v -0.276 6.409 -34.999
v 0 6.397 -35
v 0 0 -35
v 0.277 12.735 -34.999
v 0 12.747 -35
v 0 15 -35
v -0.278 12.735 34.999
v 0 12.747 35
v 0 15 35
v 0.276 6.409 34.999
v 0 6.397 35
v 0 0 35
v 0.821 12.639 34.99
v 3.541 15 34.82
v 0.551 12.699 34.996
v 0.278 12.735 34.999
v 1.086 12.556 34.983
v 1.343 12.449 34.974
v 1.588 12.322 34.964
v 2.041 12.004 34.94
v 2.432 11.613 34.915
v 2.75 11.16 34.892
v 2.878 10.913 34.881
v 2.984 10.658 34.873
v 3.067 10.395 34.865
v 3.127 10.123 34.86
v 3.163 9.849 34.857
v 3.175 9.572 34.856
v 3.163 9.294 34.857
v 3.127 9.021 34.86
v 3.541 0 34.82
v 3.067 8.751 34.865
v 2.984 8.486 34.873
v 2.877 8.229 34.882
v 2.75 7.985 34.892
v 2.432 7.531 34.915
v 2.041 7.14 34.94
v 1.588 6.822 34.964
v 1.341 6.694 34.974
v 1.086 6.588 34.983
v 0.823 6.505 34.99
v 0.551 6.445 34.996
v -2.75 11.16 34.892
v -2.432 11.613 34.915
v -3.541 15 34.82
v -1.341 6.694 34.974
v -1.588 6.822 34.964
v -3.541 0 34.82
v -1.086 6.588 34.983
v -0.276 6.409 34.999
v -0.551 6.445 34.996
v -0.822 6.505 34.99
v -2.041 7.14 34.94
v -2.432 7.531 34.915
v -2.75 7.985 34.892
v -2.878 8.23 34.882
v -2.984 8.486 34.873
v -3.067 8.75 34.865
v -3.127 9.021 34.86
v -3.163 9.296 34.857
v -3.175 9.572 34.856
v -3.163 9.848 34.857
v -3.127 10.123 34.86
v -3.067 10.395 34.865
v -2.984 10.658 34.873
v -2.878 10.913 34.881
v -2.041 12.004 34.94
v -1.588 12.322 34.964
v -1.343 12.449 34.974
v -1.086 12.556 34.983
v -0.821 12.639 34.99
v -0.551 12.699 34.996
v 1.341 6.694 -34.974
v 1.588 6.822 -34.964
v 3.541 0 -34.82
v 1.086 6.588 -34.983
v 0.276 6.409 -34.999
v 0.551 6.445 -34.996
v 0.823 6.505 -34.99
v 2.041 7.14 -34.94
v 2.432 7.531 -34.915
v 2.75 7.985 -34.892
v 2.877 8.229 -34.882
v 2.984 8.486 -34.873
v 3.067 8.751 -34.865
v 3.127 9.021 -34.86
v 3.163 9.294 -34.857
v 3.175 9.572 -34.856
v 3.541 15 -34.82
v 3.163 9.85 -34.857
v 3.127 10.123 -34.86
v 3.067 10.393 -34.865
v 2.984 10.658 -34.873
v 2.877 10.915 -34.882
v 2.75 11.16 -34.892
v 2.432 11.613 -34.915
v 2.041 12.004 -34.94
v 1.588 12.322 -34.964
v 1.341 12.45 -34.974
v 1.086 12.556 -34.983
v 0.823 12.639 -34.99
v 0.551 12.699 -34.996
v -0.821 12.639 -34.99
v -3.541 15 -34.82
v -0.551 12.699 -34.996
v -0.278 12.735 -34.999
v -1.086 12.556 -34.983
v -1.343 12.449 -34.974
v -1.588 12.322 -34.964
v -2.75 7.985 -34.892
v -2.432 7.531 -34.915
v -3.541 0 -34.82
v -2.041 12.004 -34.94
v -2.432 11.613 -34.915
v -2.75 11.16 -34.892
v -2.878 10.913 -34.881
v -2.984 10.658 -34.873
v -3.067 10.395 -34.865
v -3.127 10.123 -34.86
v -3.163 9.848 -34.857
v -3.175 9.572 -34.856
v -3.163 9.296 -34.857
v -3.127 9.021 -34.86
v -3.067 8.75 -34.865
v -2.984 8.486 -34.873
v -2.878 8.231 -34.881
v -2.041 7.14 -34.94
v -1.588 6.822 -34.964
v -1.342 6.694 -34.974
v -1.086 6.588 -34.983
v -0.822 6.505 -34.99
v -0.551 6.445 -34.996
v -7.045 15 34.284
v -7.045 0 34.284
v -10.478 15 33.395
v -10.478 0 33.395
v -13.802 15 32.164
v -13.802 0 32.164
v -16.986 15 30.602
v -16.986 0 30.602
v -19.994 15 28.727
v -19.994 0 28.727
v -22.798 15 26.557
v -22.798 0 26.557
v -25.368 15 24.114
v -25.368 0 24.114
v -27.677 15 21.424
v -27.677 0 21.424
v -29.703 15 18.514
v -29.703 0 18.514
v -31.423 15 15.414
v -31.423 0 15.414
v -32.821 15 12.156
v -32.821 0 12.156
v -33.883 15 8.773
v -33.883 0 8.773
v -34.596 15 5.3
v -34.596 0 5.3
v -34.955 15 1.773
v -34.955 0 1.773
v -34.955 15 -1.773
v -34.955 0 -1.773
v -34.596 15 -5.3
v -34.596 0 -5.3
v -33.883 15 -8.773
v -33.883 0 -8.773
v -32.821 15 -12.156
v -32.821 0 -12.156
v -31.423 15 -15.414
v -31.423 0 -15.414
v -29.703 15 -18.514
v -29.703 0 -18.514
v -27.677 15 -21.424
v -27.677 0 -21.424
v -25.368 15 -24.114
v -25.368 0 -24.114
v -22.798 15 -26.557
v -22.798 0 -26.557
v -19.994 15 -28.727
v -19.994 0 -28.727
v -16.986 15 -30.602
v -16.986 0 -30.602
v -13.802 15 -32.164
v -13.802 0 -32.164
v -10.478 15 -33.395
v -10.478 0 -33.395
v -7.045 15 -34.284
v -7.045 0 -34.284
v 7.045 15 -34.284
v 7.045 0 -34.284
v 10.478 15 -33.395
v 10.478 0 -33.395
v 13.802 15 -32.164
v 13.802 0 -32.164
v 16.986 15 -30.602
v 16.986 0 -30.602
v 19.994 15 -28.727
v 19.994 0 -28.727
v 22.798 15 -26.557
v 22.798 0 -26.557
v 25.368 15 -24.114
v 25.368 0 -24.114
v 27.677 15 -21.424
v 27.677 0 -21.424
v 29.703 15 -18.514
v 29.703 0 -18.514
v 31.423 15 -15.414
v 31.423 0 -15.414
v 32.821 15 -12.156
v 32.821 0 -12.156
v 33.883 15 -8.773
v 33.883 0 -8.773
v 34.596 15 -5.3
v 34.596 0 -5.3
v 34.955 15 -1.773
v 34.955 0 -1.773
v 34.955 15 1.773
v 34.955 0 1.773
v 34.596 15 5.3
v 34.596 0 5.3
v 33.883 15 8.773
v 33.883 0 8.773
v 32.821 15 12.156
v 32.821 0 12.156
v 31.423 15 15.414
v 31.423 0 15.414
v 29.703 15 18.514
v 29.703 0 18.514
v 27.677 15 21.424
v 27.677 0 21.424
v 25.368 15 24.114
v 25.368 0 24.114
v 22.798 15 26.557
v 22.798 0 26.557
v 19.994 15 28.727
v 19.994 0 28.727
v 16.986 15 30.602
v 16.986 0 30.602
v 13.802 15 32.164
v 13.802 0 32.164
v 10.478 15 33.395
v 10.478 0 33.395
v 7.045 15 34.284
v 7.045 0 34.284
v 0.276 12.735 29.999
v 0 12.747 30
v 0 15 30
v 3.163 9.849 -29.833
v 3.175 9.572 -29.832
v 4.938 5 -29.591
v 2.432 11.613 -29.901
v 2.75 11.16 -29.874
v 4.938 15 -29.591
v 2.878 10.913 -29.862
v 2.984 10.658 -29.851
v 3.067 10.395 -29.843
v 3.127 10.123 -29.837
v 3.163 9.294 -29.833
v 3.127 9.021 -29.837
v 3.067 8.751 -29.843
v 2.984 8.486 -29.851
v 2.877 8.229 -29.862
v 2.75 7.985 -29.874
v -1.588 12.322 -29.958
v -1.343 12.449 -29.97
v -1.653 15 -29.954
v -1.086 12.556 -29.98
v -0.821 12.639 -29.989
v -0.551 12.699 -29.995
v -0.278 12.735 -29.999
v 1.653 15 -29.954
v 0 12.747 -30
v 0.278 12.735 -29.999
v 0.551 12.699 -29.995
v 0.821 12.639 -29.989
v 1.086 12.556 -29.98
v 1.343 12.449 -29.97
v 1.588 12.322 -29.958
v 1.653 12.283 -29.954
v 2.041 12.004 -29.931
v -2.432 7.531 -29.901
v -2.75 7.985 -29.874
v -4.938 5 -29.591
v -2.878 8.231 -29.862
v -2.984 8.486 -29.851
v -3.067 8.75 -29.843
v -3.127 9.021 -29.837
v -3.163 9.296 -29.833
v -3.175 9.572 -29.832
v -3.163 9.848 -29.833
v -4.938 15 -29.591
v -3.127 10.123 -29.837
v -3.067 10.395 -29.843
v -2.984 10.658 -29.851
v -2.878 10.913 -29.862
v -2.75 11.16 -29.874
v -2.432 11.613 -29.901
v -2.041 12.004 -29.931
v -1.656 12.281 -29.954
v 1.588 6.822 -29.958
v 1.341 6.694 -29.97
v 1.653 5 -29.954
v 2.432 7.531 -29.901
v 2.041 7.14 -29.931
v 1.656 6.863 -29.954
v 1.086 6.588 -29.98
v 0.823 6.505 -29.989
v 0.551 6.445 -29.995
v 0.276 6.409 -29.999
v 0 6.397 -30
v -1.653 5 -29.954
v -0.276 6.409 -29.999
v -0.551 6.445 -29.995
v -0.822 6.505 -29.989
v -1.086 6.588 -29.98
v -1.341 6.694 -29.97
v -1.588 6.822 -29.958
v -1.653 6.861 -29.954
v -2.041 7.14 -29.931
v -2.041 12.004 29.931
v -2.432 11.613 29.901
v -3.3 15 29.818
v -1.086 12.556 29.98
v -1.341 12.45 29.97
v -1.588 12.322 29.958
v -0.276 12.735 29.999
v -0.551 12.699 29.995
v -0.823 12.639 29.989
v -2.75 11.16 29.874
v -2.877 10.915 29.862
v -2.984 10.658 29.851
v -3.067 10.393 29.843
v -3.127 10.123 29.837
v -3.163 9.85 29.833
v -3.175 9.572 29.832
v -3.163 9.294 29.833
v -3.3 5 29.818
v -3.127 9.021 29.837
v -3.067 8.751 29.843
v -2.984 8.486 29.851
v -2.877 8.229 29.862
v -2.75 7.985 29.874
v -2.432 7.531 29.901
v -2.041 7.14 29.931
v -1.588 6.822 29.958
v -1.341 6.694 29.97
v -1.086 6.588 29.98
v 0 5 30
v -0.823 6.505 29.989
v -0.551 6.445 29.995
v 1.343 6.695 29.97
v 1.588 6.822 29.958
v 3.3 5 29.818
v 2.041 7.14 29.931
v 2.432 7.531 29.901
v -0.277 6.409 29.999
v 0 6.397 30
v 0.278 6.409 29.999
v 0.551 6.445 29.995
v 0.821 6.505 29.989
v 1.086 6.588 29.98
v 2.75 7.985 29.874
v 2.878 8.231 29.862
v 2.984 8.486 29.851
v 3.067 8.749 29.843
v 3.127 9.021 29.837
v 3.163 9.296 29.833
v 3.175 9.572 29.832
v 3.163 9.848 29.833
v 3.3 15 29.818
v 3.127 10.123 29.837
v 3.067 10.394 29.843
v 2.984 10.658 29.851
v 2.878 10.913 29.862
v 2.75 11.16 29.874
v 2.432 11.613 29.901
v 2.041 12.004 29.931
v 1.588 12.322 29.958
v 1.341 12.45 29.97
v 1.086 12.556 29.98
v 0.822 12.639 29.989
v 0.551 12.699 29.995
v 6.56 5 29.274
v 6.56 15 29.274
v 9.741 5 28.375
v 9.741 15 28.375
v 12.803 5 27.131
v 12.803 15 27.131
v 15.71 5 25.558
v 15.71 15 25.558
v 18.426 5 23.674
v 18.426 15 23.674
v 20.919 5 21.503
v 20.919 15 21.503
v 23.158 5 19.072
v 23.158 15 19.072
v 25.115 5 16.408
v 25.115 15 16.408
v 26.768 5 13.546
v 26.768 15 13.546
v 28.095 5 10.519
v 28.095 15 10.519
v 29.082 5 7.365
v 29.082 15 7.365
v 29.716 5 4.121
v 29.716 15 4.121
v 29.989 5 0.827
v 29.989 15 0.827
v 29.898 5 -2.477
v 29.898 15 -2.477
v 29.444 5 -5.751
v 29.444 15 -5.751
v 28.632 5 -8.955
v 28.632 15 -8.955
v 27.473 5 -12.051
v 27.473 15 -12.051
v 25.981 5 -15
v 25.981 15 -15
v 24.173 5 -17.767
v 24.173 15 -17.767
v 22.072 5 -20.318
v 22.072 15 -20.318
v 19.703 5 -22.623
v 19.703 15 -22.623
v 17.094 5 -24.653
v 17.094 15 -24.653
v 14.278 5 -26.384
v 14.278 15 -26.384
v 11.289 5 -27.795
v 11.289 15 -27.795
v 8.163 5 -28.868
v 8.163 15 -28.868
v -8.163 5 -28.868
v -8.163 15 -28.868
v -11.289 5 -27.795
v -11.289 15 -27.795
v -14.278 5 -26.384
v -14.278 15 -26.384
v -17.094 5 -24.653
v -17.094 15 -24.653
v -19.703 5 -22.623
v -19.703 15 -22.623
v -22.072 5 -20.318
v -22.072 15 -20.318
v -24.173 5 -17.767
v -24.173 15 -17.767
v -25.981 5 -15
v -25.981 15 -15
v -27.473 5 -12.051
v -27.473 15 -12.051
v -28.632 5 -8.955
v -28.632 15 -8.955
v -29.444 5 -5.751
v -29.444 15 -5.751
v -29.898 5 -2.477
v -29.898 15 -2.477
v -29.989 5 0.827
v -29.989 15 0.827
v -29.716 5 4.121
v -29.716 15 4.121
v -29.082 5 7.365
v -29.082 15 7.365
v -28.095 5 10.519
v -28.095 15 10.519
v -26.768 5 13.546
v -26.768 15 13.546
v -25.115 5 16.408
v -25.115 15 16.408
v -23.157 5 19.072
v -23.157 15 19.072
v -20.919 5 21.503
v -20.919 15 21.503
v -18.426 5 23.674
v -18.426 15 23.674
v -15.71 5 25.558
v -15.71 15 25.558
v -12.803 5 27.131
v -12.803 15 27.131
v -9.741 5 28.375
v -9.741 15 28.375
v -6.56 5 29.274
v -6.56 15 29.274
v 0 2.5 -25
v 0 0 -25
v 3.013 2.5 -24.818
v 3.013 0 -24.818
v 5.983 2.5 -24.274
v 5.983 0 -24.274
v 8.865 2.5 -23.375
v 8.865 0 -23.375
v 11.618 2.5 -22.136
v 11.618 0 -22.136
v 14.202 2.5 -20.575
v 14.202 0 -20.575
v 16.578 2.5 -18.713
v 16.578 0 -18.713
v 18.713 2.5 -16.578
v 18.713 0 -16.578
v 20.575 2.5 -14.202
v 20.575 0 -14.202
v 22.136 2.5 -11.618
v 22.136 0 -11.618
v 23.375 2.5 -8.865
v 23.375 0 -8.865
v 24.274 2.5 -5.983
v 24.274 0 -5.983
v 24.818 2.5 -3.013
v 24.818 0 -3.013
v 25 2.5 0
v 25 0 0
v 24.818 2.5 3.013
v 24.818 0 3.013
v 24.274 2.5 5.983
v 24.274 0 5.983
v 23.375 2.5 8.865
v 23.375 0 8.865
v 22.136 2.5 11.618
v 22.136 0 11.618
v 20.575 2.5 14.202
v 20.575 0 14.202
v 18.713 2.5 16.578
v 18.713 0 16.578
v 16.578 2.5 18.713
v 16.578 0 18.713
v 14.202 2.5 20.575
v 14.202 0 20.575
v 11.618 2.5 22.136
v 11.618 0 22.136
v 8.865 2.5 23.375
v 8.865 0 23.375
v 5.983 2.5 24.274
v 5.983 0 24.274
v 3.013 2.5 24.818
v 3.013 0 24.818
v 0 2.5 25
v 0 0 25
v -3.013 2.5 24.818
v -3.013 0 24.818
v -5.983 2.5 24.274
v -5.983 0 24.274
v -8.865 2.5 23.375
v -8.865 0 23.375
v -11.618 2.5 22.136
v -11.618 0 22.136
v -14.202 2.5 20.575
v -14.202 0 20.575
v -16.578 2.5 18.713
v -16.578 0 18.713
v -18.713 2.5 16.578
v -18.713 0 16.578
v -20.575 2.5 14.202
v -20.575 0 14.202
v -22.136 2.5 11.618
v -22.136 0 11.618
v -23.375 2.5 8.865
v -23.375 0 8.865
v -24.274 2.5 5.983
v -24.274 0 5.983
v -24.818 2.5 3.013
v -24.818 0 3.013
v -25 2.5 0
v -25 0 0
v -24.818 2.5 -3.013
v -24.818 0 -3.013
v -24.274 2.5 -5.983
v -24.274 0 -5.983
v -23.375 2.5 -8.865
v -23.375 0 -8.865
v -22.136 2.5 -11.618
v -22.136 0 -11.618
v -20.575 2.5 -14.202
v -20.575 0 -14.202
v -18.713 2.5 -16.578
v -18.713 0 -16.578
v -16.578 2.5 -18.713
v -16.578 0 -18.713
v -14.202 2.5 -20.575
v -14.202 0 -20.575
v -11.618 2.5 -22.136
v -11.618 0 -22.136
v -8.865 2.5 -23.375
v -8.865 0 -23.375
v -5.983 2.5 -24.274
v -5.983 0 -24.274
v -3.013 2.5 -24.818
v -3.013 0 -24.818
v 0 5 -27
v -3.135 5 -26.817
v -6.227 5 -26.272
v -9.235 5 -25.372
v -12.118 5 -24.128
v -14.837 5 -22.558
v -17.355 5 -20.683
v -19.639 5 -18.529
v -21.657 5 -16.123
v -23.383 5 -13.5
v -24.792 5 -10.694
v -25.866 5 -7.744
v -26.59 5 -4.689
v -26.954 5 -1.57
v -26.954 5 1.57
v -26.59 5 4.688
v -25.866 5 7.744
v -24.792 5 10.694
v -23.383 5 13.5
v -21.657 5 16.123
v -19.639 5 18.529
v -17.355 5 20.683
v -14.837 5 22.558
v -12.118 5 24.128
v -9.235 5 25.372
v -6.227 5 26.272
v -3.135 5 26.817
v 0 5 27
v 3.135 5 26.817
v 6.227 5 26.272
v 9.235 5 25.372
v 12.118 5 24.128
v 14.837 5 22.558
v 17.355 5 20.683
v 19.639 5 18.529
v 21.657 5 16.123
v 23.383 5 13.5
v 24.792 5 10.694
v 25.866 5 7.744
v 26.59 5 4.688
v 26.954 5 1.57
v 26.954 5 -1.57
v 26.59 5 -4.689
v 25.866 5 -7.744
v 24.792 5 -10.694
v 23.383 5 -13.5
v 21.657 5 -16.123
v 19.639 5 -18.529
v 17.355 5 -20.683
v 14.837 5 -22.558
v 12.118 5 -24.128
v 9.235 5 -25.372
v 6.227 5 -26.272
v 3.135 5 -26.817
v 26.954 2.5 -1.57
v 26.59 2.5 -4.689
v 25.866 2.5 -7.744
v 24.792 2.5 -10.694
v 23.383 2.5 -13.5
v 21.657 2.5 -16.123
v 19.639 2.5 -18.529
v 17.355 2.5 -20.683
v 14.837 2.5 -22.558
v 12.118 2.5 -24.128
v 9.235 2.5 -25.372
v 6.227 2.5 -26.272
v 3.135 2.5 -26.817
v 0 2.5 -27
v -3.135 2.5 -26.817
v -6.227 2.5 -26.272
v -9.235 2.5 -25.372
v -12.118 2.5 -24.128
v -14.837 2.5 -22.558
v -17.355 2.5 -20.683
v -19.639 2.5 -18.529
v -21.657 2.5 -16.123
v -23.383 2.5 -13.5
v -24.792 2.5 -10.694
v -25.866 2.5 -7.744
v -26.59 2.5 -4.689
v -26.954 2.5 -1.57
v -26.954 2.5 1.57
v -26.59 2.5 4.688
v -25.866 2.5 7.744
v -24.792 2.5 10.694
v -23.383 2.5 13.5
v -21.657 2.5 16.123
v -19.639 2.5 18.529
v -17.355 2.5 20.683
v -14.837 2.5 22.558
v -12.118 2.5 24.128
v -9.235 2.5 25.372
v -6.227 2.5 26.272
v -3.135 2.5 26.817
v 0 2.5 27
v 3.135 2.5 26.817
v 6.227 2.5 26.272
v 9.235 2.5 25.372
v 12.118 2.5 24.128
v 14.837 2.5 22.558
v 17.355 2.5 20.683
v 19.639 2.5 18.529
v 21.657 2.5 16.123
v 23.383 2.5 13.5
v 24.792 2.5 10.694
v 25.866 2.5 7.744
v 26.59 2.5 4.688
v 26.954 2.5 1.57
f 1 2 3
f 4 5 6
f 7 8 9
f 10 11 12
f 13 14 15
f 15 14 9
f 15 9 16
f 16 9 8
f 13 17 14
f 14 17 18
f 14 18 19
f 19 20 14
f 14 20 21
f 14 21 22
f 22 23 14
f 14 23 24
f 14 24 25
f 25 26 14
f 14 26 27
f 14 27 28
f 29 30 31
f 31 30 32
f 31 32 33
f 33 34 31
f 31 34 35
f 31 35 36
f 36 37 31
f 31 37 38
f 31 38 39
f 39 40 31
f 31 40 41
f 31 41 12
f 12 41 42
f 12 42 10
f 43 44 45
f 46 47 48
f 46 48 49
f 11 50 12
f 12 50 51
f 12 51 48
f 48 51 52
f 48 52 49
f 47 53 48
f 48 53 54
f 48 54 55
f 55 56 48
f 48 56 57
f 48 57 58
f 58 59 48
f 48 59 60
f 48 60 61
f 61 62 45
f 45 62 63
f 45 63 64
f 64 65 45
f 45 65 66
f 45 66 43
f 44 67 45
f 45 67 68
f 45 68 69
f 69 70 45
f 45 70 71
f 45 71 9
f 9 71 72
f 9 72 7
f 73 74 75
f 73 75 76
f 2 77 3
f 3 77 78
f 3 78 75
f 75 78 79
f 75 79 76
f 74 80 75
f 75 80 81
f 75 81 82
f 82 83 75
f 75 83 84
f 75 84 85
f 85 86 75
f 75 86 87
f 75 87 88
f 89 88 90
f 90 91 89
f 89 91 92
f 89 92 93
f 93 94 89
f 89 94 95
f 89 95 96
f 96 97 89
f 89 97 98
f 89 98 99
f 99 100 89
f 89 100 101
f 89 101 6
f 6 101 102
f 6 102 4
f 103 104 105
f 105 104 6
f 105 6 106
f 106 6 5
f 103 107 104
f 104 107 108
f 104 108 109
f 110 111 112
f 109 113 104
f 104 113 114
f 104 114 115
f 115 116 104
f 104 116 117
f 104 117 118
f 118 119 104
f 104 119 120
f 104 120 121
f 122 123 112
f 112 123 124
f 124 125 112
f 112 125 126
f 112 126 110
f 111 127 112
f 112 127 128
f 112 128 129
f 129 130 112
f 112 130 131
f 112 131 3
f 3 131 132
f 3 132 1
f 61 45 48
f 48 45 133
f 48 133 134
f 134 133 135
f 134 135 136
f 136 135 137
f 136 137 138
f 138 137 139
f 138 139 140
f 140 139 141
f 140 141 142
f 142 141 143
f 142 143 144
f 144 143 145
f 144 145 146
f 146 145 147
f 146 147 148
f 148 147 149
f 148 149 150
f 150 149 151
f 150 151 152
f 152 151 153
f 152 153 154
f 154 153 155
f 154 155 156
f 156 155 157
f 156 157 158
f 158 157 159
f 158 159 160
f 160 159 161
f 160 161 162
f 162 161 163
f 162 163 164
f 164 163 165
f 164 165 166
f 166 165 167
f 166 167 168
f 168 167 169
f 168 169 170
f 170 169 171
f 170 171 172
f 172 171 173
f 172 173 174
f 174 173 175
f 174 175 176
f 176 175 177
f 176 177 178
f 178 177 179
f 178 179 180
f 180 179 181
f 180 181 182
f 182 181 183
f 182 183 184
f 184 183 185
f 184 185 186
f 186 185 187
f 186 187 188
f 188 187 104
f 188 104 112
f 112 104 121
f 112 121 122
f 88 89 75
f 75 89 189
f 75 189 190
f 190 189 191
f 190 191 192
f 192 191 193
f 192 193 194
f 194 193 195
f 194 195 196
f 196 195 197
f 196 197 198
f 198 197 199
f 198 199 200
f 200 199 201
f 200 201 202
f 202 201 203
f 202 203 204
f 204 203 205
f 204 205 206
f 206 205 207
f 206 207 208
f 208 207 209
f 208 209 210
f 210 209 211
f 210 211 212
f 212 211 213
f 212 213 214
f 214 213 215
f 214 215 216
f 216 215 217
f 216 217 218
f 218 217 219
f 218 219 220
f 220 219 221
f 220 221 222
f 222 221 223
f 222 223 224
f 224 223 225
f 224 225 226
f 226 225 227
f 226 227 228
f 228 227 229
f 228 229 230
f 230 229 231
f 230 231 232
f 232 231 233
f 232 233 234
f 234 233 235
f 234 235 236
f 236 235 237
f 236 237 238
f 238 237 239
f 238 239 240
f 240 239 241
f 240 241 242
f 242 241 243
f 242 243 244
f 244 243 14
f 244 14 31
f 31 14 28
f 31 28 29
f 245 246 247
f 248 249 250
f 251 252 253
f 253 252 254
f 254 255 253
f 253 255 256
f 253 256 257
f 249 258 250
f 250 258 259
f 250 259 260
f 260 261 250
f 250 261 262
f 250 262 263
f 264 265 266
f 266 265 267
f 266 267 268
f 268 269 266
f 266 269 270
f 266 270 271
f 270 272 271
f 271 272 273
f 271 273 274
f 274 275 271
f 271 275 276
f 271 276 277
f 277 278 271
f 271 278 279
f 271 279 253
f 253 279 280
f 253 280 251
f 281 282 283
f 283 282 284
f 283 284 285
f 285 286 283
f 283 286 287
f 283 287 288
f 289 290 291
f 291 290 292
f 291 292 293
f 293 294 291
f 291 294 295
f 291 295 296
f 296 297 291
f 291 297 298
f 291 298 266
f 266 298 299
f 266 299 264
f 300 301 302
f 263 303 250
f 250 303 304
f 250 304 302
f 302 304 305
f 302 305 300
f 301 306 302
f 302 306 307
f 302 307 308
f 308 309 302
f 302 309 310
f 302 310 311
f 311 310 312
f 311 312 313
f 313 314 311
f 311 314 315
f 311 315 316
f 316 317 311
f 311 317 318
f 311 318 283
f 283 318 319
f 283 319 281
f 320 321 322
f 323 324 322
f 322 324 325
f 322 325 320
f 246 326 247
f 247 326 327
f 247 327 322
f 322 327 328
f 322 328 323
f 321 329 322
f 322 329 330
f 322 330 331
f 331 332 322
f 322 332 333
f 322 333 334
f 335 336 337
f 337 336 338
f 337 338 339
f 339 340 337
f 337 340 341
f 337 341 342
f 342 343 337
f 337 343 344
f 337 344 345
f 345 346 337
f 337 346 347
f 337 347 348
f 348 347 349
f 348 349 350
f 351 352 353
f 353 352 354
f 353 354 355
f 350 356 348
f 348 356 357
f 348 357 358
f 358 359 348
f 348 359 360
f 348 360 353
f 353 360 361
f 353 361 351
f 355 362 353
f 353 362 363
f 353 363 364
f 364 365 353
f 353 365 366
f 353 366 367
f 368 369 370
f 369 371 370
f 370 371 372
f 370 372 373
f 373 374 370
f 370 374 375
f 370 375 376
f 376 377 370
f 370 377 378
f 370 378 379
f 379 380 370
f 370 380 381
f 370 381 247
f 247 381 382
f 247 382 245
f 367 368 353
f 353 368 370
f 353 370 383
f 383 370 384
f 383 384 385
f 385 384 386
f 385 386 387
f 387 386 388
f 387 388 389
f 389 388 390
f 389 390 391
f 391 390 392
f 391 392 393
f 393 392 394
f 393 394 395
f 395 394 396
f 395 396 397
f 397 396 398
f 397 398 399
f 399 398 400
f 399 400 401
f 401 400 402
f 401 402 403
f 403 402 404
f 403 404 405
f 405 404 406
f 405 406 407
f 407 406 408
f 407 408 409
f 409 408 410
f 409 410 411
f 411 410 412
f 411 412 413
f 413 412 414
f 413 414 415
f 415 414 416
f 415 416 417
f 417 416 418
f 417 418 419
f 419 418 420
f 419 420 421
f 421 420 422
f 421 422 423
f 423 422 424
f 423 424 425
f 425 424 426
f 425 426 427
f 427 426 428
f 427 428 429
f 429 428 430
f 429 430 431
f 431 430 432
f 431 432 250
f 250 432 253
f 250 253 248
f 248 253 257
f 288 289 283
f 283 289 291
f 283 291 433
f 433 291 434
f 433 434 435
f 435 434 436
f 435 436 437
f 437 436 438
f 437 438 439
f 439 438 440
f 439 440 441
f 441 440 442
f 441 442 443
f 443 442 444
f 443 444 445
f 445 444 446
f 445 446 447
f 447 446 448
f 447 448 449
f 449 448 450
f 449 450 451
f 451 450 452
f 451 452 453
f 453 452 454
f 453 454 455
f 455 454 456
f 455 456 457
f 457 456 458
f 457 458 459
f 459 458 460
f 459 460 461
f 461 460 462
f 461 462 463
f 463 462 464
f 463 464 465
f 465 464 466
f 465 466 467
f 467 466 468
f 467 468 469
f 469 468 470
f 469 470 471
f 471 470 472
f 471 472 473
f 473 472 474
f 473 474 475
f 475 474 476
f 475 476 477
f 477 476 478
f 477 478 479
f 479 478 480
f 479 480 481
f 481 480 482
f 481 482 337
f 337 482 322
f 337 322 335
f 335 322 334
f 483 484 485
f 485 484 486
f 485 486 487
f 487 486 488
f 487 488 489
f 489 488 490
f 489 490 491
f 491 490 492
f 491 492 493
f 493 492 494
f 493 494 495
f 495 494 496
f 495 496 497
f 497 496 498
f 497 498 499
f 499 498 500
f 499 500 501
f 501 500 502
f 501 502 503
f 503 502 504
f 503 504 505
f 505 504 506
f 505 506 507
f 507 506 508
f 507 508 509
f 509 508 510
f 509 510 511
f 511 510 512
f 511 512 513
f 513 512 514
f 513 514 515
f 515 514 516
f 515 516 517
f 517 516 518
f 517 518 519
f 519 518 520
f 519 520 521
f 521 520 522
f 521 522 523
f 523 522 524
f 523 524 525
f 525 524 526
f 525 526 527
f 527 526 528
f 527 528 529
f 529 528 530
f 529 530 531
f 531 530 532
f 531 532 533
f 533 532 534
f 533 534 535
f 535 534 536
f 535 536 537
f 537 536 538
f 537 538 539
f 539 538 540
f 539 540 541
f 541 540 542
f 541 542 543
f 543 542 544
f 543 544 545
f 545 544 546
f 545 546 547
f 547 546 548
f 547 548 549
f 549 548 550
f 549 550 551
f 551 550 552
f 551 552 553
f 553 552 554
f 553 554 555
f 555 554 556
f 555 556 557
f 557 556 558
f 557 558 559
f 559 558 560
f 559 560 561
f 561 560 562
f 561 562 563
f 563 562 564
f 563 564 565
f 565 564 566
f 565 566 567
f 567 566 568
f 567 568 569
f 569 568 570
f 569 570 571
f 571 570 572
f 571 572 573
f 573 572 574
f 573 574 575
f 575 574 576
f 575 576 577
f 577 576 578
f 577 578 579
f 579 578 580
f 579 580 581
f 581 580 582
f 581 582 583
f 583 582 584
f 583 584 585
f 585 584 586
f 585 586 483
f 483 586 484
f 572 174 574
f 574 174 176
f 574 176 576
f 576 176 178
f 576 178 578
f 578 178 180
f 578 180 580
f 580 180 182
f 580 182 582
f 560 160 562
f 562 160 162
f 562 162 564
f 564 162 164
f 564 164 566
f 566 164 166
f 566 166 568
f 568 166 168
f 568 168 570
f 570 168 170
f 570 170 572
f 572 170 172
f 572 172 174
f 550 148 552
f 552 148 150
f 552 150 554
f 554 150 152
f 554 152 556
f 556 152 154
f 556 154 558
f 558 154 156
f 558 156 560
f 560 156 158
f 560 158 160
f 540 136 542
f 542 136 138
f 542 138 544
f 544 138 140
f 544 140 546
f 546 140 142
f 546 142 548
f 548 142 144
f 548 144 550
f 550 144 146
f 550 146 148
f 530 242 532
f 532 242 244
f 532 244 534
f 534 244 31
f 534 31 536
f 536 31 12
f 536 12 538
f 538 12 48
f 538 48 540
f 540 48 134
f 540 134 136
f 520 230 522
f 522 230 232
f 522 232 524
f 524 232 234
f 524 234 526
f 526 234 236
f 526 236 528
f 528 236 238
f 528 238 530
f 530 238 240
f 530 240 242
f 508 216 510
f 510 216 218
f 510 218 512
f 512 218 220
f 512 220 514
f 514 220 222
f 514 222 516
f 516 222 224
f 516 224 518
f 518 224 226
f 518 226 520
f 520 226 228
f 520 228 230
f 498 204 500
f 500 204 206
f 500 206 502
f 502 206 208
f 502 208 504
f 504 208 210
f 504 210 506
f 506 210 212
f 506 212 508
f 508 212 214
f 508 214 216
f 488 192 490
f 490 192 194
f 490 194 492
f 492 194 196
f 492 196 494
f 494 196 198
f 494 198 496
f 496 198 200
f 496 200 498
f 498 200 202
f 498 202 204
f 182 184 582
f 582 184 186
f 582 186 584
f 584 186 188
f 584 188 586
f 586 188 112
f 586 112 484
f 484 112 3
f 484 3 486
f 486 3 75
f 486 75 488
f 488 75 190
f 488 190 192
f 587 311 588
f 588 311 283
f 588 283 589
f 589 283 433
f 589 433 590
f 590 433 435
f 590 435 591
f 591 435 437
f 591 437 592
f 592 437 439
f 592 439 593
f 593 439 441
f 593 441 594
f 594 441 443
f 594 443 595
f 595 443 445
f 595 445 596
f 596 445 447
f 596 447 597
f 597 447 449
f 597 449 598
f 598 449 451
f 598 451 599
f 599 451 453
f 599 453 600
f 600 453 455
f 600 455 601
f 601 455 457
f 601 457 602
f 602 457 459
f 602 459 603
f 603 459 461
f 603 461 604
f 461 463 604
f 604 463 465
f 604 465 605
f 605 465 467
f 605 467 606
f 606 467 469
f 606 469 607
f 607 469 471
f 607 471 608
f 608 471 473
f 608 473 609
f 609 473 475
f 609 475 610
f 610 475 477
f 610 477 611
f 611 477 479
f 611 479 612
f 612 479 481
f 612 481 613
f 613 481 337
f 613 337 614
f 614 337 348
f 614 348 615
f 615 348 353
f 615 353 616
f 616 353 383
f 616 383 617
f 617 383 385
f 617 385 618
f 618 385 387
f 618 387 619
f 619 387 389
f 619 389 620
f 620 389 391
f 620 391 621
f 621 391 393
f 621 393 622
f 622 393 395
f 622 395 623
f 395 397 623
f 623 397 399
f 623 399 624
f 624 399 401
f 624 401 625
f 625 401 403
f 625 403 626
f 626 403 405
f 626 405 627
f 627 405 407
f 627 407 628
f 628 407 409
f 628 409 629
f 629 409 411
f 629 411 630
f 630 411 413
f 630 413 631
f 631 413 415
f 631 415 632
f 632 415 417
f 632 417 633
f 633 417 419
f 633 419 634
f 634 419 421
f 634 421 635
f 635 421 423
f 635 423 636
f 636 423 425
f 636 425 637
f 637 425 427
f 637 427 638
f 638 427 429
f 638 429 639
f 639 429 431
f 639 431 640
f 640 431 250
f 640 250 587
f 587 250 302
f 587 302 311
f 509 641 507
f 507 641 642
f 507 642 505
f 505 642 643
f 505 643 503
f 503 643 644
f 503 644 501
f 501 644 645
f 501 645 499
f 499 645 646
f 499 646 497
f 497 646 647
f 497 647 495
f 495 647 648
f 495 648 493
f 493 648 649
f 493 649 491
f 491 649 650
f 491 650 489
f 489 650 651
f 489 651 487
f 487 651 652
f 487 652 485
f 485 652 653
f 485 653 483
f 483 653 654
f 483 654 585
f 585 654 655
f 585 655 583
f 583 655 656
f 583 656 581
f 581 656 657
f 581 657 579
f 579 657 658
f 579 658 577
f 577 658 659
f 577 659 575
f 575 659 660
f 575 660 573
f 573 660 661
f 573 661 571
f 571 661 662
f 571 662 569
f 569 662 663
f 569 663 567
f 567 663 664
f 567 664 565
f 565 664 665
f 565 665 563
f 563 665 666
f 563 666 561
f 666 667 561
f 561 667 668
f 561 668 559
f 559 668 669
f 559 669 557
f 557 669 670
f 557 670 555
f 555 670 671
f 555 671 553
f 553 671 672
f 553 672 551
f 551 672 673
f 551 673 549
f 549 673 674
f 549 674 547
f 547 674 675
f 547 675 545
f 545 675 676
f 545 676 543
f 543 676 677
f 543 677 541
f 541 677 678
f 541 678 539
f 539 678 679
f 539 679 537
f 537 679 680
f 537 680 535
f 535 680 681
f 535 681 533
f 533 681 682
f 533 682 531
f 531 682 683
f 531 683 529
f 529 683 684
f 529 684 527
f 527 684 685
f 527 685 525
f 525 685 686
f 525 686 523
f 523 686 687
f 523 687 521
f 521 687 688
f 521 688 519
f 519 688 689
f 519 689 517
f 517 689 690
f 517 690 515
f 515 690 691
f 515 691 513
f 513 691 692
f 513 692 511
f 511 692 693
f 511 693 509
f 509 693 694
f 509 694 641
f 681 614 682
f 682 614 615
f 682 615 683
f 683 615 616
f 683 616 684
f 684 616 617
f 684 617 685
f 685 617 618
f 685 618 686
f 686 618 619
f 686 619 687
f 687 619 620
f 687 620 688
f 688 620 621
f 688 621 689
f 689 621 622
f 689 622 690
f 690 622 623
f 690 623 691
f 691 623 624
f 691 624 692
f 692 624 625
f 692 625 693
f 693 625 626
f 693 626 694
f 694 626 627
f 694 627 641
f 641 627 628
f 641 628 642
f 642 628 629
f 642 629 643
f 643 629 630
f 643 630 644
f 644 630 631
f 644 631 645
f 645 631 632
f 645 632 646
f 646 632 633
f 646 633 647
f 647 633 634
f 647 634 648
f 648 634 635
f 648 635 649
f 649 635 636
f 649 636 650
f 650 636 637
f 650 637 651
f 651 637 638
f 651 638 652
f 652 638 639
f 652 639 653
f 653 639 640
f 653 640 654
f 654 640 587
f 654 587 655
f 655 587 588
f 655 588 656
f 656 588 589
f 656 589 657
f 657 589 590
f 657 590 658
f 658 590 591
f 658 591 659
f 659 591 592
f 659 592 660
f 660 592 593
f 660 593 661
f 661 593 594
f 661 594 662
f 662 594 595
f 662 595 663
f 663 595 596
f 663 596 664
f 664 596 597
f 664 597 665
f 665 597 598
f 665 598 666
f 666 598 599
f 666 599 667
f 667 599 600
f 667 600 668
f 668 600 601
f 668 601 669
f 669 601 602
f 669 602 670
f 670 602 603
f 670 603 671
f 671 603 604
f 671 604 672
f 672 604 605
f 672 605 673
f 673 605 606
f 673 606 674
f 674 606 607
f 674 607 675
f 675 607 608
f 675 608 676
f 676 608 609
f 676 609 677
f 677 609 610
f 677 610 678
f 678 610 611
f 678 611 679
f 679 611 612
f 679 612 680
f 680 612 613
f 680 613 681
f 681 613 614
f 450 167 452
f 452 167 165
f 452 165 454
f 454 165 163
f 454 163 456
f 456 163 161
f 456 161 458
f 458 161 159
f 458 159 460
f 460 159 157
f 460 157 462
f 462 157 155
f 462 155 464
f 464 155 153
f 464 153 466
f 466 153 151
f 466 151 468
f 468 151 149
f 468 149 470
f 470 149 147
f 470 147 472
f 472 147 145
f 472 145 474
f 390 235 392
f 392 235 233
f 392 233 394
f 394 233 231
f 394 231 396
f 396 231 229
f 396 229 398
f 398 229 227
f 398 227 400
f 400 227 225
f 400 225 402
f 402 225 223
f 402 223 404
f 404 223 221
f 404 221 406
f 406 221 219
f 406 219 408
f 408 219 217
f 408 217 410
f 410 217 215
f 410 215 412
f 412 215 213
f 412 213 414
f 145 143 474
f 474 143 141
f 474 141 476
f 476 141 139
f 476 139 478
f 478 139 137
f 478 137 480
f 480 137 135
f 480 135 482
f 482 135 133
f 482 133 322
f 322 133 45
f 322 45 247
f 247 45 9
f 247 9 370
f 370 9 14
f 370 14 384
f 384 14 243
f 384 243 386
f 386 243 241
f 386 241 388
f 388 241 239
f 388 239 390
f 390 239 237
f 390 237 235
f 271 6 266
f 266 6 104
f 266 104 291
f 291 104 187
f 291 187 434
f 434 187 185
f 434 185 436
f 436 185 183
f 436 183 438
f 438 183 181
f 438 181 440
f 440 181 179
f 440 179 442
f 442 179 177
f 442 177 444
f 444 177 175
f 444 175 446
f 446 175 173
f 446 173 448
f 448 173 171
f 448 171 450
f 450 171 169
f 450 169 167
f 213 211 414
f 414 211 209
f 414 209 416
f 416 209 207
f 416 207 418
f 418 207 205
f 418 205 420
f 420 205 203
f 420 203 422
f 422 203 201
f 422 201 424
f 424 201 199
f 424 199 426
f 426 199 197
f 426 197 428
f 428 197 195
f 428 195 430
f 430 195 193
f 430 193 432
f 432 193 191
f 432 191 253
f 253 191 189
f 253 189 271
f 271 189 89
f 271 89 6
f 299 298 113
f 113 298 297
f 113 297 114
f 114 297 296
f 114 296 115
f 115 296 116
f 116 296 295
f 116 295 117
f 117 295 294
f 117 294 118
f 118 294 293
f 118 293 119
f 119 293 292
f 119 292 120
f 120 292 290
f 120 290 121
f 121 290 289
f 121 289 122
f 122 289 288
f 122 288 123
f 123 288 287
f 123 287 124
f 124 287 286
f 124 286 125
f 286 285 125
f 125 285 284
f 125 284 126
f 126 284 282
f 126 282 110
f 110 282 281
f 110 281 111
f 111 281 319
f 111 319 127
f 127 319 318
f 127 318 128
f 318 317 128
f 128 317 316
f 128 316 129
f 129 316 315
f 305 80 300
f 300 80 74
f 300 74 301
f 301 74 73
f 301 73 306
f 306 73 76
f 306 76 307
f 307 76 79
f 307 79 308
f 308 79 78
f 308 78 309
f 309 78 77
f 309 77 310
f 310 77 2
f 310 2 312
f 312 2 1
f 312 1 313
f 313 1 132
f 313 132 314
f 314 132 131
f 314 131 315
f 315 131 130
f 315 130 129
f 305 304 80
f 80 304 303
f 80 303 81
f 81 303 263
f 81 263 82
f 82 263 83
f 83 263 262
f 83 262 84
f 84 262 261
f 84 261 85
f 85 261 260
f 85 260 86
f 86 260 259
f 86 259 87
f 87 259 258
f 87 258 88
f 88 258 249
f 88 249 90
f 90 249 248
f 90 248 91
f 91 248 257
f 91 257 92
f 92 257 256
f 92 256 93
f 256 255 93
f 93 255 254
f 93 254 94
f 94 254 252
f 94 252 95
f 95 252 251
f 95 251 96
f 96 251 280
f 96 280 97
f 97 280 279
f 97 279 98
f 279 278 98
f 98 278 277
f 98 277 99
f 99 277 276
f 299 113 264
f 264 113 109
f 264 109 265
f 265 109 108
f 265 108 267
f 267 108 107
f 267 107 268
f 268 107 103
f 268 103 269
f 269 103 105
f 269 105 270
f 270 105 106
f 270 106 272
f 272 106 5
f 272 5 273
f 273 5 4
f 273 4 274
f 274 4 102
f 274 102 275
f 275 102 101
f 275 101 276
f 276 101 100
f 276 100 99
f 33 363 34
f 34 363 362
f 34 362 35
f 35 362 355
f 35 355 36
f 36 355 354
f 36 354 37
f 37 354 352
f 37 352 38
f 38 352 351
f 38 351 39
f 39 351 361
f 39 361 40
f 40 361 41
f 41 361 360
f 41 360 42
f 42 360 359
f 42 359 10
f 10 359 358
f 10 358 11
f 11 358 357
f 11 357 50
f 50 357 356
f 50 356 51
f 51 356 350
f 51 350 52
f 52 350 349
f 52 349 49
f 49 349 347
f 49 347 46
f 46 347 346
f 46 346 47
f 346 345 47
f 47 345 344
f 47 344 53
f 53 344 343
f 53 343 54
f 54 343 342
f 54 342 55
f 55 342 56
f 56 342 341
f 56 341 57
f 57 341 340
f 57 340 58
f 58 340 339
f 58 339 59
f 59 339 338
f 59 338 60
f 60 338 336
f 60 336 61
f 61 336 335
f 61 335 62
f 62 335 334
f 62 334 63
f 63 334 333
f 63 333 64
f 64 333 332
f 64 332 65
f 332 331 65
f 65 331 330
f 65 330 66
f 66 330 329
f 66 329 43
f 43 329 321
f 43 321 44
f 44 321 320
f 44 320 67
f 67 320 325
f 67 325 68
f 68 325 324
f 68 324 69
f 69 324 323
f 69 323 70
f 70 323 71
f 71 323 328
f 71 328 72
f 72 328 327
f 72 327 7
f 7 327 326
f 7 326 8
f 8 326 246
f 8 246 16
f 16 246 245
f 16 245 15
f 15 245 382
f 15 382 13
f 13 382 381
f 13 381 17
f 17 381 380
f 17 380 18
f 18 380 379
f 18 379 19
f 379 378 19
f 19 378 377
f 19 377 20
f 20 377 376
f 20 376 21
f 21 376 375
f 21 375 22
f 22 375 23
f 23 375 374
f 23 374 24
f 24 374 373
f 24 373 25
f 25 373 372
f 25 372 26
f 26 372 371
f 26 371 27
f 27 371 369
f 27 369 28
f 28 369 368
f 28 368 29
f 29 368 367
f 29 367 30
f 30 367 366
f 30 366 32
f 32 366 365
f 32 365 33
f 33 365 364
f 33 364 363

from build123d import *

# Parameters (mm, degrees)
SKETCH1_R               = 35
BOSS_EXTRUDE1_DEPTH     = 25
SKETCH2_R               = 30
CUT_EXTRUDE1_DEPTH      = 20
SKETCH3_R               = 25
CUT_EXTRUDE2_DEPTH      = 20
SKETCH4_R               = 27
CUT_EXTRUDE3_DEPTH      = 2.5
SKETCH5_R               = 55.910187051
CUT_EXTRUDE4_DEPTH      = 10
CUT_EXTRUDE6_DEPTH      = 52.720402164
CUT_EXTRUDE6_DEPTH_BACK = 52.720402164
SKETCH7_R               = 3.175


with BuildPart() as part:
    # Sketch1 → Boss-Extrude1 (new body)
    with BuildSketch(Plane(origin=(0, 0, 0), x_dir=(1, 0, 0), z_dir=(0, 1, 0))):
        with Locations(Location((0, 0, 0), (0, 0, 270))):
            Circle(SKETCH1_R)
    extrude(amount=BOSS_EXTRUDE1_DEPTH)

    # Sketch2 → Cut-Extrude1 (cut)
    with BuildSketch(Plane(origin=(0, 25, 0), x_dir=(1, 0, 0), z_dir=(0, 1, 0))):
        with Locations(Location((0, 0, 0), (0, 0, 270))):
            Circle(SKETCH2_R)
    extrude(amount=-CUT_EXTRUDE1_DEPTH, mode=Mode.SUBTRACT)

    # Sketch3 → Cut-Extrude2 (cut)
    with BuildSketch(Plane.XZ):
        with Locations(Location((0, 0, 0), (0, 0, 270))):
            Circle(SKETCH3_R)
    extrude(amount=-CUT_EXTRUDE2_DEPTH, mode=Mode.SUBTRACT)

    # Sketch4 → Cut-Extrude3 (cut)
    with BuildSketch(Plane(origin=(0, 5, 0), x_dir=(1, 0, 0), z_dir=(0, 1, 0))):
        with Locations(Location((0, 0, 0), (0, 0, 270))):
            Circle(SKETCH4_R)
    extrude(amount=-CUT_EXTRUDE3_DEPTH, mode=Mode.SUBTRACT)

    # Sketch5 → Cut-Extrude4 (cut)
    with BuildSketch(Plane(origin=(0, 25, 0), x_dir=(1, 0, 0), z_dir=(0, 1, 0))):
        Circle(SKETCH5_R)
    extrude(amount=-CUT_EXTRUDE4_DEPTH, mode=Mode.SUBTRACT)

    # Sketch7 → Cut-Extrude6 (cut, two sides: drawn at the far end of the back side and taken through both)
    with BuildSketch(Plane.XY.offset(-CUT_EXTRUDE6_DEPTH_BACK)):
        with Locations((0, 9.572)):
            Circle(SKETCH7_R)
    extrude(amount=CUT_EXTRUDE6_DEPTH + CUT_EXTRUDE6_DEPTH_BACK, mode=Mode.SUBTRACT)


solid = part.part
